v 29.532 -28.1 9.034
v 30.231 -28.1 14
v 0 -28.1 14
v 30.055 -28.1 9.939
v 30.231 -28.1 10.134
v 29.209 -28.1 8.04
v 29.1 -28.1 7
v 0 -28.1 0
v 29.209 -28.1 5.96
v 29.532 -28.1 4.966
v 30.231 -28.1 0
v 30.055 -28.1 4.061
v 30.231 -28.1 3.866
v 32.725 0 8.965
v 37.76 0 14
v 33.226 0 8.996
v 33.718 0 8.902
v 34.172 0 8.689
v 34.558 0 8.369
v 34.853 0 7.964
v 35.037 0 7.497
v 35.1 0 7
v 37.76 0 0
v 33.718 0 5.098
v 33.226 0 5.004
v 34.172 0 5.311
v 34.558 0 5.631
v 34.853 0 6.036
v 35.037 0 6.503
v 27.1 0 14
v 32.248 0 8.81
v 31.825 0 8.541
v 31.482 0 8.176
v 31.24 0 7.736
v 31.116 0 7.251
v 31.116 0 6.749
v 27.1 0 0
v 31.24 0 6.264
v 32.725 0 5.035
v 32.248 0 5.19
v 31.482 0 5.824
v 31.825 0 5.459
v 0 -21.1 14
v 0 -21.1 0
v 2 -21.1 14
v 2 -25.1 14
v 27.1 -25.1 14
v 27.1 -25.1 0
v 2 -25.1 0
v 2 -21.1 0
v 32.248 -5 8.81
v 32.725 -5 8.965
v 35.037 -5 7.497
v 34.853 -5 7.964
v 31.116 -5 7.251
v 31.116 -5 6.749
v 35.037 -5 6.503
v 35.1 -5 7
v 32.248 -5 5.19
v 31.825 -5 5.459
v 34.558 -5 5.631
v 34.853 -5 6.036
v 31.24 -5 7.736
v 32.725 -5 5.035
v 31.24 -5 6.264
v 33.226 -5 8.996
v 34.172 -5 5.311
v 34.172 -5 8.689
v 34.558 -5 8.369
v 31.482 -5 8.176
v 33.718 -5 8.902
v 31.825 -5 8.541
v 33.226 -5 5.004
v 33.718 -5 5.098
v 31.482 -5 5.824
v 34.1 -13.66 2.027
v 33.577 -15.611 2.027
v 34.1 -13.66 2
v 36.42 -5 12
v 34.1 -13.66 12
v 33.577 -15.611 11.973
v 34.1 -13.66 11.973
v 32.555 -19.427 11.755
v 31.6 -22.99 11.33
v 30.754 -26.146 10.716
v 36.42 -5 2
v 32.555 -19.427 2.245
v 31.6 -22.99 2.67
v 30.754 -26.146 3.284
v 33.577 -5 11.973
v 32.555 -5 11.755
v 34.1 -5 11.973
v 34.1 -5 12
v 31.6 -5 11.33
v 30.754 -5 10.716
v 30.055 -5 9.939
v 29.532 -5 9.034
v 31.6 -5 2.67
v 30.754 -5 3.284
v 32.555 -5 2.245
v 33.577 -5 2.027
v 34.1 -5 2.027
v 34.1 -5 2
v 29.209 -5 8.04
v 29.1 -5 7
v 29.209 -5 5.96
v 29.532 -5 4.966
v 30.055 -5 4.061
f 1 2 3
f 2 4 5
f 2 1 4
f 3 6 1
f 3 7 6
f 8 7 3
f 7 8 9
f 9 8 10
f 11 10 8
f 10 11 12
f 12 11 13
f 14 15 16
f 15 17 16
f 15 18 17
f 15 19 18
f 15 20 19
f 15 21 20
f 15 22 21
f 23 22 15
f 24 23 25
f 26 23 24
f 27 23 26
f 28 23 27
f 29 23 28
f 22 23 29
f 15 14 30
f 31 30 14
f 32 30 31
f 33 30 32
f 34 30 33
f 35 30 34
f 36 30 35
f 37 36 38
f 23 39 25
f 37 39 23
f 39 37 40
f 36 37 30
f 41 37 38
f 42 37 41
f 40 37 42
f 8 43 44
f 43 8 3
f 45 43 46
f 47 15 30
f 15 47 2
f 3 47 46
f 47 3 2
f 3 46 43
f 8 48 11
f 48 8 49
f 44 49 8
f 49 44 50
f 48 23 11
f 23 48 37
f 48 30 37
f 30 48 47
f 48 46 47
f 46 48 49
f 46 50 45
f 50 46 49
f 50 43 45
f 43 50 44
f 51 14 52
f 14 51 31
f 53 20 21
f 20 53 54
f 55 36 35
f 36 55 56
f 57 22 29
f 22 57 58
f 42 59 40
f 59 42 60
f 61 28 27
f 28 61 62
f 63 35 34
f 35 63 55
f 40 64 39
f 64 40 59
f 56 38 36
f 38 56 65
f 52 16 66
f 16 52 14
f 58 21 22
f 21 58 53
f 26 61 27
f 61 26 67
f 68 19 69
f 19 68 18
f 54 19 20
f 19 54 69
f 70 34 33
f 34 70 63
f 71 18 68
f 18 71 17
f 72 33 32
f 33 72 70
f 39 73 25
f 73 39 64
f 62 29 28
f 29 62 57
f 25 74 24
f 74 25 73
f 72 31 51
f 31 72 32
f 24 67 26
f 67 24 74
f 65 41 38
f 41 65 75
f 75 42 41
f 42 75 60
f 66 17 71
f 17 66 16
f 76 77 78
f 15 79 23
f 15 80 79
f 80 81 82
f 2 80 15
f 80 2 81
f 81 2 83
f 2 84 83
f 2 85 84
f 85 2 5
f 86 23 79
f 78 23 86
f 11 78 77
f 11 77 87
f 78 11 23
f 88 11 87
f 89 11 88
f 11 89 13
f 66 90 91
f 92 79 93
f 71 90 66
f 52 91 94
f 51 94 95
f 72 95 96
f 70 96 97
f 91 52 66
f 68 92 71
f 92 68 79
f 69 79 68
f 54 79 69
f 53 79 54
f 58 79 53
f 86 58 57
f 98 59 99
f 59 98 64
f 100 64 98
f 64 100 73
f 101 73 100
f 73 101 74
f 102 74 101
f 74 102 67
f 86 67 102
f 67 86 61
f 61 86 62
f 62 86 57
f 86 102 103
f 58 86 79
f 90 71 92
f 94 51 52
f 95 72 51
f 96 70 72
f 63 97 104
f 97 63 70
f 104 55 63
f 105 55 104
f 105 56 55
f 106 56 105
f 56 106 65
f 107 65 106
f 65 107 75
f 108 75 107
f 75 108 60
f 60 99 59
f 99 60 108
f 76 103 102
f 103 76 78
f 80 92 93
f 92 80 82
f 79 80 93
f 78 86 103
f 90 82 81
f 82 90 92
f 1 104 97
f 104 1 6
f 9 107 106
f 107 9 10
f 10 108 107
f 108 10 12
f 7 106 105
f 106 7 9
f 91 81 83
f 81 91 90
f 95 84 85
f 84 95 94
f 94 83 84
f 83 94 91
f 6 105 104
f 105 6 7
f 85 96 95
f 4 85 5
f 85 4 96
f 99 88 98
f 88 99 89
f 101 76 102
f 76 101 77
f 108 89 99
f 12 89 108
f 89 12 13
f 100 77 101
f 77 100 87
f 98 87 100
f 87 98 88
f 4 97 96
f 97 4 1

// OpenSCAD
t=25.1;

rotate([90,0,0])
difference() {
    cube([t+14,14,t+3]);

    // pole cutout
    translate([2,-2,-1])
        cube([t,2*14,t+1]);

    // pole cutout
    translate([-2,-2,-4])
        cube([t,2*14,t]);

    // screw hole
    translate([t+2+6,7,-1])
        cylinder(2*t, d=4, $fn=25);

    // sloped edge
    translate([t+14,-1,-5])
        rotate([0,-15,0])
        cube([20, 20, 2*t]);

    // screw cutout
    translate([t+9,2,5])
        cube([10,10,2*t]);
    translate([t+2+7,7,5])
        cylinder(2*t, d=10, $fn=30);
}
